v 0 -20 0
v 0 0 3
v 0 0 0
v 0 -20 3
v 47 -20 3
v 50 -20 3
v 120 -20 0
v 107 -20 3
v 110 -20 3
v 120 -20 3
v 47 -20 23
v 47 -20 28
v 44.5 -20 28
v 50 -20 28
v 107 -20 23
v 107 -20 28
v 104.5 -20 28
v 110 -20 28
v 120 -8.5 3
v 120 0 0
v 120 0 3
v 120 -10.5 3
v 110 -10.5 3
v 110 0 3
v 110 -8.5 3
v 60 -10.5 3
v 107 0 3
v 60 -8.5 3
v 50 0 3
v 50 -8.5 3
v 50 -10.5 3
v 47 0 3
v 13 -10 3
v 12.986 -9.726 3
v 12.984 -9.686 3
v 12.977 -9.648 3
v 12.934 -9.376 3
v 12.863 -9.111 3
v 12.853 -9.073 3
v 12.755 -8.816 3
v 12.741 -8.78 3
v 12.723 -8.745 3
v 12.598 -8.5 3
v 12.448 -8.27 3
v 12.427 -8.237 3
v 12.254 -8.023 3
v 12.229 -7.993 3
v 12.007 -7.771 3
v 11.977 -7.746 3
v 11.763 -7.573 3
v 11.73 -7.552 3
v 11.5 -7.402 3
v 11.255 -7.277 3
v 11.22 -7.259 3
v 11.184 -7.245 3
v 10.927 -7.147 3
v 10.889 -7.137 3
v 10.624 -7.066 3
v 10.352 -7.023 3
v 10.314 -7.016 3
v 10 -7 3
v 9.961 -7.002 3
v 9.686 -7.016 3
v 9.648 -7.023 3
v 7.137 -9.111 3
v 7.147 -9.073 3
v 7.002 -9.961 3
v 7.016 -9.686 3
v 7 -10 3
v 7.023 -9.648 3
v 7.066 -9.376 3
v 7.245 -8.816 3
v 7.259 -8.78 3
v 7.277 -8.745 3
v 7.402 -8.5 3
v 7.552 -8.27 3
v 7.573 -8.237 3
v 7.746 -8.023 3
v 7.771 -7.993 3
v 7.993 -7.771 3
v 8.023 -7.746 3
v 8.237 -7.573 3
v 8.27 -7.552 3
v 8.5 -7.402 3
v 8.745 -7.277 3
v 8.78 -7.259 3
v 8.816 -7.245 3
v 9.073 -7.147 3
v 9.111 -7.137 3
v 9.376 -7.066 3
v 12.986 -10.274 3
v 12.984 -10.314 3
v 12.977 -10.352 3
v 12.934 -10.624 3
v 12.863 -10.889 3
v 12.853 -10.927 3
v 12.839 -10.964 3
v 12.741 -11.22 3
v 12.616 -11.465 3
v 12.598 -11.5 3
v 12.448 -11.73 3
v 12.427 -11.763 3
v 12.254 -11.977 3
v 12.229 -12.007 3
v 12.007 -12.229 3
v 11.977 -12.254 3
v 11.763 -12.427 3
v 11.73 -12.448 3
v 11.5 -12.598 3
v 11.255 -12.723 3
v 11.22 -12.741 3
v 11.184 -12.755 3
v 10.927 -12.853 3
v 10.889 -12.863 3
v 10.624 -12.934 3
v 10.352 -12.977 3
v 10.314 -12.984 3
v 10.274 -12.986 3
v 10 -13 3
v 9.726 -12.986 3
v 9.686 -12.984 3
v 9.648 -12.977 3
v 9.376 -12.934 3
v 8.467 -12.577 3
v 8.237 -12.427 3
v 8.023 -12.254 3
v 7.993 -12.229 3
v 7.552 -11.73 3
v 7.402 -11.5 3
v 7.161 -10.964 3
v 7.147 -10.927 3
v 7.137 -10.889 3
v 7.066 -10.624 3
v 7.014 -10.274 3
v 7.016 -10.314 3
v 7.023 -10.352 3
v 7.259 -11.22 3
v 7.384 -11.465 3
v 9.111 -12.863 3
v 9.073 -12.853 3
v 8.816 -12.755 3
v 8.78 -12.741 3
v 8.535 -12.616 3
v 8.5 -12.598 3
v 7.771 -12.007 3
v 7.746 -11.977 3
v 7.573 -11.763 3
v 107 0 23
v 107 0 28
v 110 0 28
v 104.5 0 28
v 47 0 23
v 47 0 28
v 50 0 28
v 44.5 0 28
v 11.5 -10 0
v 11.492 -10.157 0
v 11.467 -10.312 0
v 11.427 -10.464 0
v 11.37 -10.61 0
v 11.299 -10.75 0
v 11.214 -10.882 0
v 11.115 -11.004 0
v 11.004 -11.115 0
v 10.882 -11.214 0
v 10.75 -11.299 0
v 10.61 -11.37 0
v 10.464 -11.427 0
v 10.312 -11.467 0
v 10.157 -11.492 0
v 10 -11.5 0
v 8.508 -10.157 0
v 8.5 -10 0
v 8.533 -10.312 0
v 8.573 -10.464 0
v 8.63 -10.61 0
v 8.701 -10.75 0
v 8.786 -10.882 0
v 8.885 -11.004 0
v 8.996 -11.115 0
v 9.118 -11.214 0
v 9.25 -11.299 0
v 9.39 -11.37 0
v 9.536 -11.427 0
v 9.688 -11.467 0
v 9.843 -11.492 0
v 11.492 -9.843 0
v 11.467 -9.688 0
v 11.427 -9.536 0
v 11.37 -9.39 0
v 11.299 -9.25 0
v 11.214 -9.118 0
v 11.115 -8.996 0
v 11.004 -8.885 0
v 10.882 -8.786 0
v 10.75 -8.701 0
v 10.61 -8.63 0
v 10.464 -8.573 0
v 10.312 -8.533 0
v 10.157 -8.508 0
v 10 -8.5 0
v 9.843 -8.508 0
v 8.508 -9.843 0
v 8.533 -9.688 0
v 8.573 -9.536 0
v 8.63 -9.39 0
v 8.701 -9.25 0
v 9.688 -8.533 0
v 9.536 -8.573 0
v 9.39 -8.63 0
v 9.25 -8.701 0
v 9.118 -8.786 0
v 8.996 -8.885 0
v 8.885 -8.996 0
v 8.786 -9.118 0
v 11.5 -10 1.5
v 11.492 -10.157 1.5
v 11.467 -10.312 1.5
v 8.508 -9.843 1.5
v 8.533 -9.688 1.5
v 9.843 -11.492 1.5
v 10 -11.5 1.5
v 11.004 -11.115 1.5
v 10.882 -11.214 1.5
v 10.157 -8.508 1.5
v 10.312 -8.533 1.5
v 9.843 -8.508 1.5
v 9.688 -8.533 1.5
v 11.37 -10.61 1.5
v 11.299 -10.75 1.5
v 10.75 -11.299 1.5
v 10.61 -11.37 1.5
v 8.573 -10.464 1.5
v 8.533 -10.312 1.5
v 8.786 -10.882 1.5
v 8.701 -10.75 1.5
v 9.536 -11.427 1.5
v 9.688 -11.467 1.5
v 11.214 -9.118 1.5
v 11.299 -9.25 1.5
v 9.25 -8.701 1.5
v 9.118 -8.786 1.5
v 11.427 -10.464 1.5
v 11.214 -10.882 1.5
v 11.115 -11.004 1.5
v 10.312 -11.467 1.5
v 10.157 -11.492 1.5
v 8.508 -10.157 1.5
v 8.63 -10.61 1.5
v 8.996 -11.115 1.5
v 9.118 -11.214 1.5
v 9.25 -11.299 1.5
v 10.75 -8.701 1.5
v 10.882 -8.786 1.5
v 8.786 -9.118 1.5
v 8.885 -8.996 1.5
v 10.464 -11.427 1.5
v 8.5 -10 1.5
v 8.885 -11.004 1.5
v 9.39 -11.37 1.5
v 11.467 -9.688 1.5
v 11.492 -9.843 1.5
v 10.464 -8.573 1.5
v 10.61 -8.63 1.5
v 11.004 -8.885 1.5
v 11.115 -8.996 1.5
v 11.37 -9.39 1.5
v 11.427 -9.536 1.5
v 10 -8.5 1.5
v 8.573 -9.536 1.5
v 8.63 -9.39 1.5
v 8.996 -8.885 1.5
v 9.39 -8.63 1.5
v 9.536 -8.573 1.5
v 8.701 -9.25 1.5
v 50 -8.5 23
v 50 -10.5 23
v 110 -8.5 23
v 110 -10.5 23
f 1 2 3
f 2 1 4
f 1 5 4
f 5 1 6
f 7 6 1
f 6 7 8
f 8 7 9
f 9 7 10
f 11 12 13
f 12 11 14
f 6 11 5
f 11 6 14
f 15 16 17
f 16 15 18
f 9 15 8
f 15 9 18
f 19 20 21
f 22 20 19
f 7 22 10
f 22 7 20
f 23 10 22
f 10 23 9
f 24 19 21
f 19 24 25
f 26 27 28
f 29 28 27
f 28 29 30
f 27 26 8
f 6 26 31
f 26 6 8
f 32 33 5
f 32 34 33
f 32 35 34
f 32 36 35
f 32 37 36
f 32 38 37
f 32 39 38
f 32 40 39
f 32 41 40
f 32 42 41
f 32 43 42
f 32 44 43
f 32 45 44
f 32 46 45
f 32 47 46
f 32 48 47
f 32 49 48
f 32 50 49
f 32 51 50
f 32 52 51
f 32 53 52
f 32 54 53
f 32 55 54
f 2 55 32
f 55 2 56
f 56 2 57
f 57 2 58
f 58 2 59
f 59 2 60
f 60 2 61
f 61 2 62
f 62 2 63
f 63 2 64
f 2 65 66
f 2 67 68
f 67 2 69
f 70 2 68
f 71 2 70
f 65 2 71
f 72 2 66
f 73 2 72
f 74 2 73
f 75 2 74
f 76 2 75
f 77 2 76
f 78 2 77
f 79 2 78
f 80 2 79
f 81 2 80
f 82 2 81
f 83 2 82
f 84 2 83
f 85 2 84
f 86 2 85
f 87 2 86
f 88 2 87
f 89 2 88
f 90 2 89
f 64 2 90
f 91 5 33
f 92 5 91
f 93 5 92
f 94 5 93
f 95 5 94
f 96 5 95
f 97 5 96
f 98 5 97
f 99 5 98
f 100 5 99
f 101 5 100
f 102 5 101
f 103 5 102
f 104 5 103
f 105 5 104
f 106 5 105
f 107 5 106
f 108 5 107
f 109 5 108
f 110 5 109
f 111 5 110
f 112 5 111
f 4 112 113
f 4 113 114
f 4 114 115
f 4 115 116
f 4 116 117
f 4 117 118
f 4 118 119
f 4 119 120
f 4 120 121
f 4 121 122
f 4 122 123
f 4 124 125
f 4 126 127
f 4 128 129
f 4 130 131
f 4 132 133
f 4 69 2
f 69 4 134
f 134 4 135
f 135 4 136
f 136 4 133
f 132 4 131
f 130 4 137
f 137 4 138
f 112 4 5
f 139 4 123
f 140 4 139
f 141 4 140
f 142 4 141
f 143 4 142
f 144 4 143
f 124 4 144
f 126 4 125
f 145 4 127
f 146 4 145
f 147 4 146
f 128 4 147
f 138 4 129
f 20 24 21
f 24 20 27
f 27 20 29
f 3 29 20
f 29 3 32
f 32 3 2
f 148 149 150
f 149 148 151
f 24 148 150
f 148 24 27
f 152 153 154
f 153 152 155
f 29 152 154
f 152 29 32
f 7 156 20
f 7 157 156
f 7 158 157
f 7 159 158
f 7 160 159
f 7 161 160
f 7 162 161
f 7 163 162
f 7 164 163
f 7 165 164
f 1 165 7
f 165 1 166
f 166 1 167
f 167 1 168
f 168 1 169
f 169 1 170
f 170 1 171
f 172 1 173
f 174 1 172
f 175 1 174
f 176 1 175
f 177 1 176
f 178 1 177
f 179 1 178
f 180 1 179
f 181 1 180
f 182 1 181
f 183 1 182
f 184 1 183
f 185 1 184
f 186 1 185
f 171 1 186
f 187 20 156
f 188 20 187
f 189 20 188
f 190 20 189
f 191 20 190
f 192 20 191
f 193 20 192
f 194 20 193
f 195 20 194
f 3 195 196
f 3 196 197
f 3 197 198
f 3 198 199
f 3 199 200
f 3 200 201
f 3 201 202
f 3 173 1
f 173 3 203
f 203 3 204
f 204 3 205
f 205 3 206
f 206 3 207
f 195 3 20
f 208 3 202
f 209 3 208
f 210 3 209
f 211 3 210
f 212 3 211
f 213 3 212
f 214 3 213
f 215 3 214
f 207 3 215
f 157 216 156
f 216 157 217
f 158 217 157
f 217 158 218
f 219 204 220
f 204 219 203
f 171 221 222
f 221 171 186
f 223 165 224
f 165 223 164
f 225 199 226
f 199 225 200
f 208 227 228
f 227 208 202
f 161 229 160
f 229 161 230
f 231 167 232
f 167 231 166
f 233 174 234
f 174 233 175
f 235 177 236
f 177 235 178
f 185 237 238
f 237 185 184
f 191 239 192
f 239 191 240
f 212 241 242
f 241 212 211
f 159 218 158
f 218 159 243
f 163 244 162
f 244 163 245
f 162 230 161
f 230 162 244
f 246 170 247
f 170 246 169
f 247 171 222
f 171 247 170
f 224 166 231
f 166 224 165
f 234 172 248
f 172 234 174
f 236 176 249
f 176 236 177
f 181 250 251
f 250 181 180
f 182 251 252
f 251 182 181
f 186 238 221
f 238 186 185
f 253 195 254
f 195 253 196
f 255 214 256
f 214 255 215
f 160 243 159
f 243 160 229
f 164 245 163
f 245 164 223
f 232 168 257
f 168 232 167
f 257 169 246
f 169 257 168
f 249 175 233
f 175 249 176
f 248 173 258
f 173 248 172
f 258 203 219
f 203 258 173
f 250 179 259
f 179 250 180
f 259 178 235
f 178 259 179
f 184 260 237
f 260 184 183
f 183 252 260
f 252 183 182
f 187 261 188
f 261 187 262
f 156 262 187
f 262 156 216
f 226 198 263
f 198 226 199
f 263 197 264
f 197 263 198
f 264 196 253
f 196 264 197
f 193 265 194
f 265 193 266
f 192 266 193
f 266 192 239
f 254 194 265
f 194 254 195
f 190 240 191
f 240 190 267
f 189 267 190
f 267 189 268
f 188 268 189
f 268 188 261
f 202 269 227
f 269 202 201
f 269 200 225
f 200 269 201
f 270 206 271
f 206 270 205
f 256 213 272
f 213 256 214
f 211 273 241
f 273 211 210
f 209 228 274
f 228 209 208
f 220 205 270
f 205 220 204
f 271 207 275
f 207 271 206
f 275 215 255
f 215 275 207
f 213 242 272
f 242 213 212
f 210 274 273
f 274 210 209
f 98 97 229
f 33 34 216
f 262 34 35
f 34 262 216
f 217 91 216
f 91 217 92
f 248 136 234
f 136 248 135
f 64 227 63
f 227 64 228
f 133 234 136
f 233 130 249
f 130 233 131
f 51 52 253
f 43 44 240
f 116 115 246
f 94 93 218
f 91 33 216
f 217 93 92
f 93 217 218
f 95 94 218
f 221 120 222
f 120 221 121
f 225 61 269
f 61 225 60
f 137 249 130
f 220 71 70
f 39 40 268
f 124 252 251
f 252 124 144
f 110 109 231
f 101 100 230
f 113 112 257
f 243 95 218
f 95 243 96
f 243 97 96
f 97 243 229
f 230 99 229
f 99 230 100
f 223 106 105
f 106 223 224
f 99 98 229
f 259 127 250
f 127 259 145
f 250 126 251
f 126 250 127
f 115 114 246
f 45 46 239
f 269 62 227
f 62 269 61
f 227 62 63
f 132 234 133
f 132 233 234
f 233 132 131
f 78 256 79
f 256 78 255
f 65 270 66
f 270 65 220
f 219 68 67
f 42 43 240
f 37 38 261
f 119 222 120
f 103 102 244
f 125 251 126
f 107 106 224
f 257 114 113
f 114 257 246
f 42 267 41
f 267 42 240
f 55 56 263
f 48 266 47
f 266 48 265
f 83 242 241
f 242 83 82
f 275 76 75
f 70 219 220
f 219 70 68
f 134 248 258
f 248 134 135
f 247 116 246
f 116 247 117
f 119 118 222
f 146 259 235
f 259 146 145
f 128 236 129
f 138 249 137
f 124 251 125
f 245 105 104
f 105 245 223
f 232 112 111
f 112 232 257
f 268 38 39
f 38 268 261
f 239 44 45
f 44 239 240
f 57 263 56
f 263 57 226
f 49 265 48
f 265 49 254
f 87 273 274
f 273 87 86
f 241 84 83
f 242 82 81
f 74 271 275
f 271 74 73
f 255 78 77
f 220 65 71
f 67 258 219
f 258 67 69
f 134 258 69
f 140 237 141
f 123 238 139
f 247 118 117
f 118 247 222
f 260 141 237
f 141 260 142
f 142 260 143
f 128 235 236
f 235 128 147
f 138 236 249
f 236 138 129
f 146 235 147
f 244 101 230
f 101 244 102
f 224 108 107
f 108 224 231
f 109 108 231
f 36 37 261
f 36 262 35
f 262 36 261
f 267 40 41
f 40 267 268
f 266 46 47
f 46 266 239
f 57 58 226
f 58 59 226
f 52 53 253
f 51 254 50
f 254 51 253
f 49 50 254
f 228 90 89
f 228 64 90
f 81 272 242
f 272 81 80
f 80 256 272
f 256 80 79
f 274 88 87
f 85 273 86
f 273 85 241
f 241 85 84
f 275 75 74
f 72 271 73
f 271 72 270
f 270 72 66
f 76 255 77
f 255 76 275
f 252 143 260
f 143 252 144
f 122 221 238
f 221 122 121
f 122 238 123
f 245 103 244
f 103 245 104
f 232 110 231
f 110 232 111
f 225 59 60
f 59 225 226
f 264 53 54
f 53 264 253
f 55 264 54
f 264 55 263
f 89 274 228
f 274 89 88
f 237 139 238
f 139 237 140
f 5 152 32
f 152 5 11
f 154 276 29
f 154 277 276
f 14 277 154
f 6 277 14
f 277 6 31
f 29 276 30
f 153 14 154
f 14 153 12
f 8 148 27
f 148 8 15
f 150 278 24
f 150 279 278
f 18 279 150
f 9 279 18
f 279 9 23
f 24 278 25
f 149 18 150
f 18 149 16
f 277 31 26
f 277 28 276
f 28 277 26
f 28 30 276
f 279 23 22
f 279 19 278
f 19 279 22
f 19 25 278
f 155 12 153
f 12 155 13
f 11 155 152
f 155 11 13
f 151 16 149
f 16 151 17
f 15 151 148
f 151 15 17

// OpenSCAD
$fn = 60;

rotate([90, 0, 0]) {
 difference () {
   cube([120, 3, 20]);
   translate([10, 4, 10]) rotate([90, 0, 0]) cylinder(5, r=1.5);
   translate([10, 1.5, 10]) rotate([-90, 0, 0]) cylinder(2, r1=1.5, r2=3.5);

 
   }
 
   translate([47, 3, 0]) cube([3, 25, 20]);
   translate([107, 3, 0]) cube([3, 25, 20]);

translate([60, 3, 10.5]) rotate([0, 180, 0]) {
linear_extrude(height=2) {
polygon([[0, 0], [10, 0], [10, 20]]);
}
}

translate([120, 3, 10.5]) rotate([0, 180, 0]) {
linear_extrude(height=2) {
polygon([[0, 0], [10, 0], [10, 20]]);
}
}


translate([50-5.5,28,20]) rotate([180,0,0]) scale([0.25, 0.25, 1]) linear_extrude(height=20) {
polygon([[0, 0], [10, 0], [10, 20]]);
}

translate([110-5.5,28,20]) rotate([180,0,0]) scale([0.25, 0.25, 1]) linear_extrude(height=20) {
polygon([[0, 0], [10, 0], [10, 20]]);
}
   
 
}
